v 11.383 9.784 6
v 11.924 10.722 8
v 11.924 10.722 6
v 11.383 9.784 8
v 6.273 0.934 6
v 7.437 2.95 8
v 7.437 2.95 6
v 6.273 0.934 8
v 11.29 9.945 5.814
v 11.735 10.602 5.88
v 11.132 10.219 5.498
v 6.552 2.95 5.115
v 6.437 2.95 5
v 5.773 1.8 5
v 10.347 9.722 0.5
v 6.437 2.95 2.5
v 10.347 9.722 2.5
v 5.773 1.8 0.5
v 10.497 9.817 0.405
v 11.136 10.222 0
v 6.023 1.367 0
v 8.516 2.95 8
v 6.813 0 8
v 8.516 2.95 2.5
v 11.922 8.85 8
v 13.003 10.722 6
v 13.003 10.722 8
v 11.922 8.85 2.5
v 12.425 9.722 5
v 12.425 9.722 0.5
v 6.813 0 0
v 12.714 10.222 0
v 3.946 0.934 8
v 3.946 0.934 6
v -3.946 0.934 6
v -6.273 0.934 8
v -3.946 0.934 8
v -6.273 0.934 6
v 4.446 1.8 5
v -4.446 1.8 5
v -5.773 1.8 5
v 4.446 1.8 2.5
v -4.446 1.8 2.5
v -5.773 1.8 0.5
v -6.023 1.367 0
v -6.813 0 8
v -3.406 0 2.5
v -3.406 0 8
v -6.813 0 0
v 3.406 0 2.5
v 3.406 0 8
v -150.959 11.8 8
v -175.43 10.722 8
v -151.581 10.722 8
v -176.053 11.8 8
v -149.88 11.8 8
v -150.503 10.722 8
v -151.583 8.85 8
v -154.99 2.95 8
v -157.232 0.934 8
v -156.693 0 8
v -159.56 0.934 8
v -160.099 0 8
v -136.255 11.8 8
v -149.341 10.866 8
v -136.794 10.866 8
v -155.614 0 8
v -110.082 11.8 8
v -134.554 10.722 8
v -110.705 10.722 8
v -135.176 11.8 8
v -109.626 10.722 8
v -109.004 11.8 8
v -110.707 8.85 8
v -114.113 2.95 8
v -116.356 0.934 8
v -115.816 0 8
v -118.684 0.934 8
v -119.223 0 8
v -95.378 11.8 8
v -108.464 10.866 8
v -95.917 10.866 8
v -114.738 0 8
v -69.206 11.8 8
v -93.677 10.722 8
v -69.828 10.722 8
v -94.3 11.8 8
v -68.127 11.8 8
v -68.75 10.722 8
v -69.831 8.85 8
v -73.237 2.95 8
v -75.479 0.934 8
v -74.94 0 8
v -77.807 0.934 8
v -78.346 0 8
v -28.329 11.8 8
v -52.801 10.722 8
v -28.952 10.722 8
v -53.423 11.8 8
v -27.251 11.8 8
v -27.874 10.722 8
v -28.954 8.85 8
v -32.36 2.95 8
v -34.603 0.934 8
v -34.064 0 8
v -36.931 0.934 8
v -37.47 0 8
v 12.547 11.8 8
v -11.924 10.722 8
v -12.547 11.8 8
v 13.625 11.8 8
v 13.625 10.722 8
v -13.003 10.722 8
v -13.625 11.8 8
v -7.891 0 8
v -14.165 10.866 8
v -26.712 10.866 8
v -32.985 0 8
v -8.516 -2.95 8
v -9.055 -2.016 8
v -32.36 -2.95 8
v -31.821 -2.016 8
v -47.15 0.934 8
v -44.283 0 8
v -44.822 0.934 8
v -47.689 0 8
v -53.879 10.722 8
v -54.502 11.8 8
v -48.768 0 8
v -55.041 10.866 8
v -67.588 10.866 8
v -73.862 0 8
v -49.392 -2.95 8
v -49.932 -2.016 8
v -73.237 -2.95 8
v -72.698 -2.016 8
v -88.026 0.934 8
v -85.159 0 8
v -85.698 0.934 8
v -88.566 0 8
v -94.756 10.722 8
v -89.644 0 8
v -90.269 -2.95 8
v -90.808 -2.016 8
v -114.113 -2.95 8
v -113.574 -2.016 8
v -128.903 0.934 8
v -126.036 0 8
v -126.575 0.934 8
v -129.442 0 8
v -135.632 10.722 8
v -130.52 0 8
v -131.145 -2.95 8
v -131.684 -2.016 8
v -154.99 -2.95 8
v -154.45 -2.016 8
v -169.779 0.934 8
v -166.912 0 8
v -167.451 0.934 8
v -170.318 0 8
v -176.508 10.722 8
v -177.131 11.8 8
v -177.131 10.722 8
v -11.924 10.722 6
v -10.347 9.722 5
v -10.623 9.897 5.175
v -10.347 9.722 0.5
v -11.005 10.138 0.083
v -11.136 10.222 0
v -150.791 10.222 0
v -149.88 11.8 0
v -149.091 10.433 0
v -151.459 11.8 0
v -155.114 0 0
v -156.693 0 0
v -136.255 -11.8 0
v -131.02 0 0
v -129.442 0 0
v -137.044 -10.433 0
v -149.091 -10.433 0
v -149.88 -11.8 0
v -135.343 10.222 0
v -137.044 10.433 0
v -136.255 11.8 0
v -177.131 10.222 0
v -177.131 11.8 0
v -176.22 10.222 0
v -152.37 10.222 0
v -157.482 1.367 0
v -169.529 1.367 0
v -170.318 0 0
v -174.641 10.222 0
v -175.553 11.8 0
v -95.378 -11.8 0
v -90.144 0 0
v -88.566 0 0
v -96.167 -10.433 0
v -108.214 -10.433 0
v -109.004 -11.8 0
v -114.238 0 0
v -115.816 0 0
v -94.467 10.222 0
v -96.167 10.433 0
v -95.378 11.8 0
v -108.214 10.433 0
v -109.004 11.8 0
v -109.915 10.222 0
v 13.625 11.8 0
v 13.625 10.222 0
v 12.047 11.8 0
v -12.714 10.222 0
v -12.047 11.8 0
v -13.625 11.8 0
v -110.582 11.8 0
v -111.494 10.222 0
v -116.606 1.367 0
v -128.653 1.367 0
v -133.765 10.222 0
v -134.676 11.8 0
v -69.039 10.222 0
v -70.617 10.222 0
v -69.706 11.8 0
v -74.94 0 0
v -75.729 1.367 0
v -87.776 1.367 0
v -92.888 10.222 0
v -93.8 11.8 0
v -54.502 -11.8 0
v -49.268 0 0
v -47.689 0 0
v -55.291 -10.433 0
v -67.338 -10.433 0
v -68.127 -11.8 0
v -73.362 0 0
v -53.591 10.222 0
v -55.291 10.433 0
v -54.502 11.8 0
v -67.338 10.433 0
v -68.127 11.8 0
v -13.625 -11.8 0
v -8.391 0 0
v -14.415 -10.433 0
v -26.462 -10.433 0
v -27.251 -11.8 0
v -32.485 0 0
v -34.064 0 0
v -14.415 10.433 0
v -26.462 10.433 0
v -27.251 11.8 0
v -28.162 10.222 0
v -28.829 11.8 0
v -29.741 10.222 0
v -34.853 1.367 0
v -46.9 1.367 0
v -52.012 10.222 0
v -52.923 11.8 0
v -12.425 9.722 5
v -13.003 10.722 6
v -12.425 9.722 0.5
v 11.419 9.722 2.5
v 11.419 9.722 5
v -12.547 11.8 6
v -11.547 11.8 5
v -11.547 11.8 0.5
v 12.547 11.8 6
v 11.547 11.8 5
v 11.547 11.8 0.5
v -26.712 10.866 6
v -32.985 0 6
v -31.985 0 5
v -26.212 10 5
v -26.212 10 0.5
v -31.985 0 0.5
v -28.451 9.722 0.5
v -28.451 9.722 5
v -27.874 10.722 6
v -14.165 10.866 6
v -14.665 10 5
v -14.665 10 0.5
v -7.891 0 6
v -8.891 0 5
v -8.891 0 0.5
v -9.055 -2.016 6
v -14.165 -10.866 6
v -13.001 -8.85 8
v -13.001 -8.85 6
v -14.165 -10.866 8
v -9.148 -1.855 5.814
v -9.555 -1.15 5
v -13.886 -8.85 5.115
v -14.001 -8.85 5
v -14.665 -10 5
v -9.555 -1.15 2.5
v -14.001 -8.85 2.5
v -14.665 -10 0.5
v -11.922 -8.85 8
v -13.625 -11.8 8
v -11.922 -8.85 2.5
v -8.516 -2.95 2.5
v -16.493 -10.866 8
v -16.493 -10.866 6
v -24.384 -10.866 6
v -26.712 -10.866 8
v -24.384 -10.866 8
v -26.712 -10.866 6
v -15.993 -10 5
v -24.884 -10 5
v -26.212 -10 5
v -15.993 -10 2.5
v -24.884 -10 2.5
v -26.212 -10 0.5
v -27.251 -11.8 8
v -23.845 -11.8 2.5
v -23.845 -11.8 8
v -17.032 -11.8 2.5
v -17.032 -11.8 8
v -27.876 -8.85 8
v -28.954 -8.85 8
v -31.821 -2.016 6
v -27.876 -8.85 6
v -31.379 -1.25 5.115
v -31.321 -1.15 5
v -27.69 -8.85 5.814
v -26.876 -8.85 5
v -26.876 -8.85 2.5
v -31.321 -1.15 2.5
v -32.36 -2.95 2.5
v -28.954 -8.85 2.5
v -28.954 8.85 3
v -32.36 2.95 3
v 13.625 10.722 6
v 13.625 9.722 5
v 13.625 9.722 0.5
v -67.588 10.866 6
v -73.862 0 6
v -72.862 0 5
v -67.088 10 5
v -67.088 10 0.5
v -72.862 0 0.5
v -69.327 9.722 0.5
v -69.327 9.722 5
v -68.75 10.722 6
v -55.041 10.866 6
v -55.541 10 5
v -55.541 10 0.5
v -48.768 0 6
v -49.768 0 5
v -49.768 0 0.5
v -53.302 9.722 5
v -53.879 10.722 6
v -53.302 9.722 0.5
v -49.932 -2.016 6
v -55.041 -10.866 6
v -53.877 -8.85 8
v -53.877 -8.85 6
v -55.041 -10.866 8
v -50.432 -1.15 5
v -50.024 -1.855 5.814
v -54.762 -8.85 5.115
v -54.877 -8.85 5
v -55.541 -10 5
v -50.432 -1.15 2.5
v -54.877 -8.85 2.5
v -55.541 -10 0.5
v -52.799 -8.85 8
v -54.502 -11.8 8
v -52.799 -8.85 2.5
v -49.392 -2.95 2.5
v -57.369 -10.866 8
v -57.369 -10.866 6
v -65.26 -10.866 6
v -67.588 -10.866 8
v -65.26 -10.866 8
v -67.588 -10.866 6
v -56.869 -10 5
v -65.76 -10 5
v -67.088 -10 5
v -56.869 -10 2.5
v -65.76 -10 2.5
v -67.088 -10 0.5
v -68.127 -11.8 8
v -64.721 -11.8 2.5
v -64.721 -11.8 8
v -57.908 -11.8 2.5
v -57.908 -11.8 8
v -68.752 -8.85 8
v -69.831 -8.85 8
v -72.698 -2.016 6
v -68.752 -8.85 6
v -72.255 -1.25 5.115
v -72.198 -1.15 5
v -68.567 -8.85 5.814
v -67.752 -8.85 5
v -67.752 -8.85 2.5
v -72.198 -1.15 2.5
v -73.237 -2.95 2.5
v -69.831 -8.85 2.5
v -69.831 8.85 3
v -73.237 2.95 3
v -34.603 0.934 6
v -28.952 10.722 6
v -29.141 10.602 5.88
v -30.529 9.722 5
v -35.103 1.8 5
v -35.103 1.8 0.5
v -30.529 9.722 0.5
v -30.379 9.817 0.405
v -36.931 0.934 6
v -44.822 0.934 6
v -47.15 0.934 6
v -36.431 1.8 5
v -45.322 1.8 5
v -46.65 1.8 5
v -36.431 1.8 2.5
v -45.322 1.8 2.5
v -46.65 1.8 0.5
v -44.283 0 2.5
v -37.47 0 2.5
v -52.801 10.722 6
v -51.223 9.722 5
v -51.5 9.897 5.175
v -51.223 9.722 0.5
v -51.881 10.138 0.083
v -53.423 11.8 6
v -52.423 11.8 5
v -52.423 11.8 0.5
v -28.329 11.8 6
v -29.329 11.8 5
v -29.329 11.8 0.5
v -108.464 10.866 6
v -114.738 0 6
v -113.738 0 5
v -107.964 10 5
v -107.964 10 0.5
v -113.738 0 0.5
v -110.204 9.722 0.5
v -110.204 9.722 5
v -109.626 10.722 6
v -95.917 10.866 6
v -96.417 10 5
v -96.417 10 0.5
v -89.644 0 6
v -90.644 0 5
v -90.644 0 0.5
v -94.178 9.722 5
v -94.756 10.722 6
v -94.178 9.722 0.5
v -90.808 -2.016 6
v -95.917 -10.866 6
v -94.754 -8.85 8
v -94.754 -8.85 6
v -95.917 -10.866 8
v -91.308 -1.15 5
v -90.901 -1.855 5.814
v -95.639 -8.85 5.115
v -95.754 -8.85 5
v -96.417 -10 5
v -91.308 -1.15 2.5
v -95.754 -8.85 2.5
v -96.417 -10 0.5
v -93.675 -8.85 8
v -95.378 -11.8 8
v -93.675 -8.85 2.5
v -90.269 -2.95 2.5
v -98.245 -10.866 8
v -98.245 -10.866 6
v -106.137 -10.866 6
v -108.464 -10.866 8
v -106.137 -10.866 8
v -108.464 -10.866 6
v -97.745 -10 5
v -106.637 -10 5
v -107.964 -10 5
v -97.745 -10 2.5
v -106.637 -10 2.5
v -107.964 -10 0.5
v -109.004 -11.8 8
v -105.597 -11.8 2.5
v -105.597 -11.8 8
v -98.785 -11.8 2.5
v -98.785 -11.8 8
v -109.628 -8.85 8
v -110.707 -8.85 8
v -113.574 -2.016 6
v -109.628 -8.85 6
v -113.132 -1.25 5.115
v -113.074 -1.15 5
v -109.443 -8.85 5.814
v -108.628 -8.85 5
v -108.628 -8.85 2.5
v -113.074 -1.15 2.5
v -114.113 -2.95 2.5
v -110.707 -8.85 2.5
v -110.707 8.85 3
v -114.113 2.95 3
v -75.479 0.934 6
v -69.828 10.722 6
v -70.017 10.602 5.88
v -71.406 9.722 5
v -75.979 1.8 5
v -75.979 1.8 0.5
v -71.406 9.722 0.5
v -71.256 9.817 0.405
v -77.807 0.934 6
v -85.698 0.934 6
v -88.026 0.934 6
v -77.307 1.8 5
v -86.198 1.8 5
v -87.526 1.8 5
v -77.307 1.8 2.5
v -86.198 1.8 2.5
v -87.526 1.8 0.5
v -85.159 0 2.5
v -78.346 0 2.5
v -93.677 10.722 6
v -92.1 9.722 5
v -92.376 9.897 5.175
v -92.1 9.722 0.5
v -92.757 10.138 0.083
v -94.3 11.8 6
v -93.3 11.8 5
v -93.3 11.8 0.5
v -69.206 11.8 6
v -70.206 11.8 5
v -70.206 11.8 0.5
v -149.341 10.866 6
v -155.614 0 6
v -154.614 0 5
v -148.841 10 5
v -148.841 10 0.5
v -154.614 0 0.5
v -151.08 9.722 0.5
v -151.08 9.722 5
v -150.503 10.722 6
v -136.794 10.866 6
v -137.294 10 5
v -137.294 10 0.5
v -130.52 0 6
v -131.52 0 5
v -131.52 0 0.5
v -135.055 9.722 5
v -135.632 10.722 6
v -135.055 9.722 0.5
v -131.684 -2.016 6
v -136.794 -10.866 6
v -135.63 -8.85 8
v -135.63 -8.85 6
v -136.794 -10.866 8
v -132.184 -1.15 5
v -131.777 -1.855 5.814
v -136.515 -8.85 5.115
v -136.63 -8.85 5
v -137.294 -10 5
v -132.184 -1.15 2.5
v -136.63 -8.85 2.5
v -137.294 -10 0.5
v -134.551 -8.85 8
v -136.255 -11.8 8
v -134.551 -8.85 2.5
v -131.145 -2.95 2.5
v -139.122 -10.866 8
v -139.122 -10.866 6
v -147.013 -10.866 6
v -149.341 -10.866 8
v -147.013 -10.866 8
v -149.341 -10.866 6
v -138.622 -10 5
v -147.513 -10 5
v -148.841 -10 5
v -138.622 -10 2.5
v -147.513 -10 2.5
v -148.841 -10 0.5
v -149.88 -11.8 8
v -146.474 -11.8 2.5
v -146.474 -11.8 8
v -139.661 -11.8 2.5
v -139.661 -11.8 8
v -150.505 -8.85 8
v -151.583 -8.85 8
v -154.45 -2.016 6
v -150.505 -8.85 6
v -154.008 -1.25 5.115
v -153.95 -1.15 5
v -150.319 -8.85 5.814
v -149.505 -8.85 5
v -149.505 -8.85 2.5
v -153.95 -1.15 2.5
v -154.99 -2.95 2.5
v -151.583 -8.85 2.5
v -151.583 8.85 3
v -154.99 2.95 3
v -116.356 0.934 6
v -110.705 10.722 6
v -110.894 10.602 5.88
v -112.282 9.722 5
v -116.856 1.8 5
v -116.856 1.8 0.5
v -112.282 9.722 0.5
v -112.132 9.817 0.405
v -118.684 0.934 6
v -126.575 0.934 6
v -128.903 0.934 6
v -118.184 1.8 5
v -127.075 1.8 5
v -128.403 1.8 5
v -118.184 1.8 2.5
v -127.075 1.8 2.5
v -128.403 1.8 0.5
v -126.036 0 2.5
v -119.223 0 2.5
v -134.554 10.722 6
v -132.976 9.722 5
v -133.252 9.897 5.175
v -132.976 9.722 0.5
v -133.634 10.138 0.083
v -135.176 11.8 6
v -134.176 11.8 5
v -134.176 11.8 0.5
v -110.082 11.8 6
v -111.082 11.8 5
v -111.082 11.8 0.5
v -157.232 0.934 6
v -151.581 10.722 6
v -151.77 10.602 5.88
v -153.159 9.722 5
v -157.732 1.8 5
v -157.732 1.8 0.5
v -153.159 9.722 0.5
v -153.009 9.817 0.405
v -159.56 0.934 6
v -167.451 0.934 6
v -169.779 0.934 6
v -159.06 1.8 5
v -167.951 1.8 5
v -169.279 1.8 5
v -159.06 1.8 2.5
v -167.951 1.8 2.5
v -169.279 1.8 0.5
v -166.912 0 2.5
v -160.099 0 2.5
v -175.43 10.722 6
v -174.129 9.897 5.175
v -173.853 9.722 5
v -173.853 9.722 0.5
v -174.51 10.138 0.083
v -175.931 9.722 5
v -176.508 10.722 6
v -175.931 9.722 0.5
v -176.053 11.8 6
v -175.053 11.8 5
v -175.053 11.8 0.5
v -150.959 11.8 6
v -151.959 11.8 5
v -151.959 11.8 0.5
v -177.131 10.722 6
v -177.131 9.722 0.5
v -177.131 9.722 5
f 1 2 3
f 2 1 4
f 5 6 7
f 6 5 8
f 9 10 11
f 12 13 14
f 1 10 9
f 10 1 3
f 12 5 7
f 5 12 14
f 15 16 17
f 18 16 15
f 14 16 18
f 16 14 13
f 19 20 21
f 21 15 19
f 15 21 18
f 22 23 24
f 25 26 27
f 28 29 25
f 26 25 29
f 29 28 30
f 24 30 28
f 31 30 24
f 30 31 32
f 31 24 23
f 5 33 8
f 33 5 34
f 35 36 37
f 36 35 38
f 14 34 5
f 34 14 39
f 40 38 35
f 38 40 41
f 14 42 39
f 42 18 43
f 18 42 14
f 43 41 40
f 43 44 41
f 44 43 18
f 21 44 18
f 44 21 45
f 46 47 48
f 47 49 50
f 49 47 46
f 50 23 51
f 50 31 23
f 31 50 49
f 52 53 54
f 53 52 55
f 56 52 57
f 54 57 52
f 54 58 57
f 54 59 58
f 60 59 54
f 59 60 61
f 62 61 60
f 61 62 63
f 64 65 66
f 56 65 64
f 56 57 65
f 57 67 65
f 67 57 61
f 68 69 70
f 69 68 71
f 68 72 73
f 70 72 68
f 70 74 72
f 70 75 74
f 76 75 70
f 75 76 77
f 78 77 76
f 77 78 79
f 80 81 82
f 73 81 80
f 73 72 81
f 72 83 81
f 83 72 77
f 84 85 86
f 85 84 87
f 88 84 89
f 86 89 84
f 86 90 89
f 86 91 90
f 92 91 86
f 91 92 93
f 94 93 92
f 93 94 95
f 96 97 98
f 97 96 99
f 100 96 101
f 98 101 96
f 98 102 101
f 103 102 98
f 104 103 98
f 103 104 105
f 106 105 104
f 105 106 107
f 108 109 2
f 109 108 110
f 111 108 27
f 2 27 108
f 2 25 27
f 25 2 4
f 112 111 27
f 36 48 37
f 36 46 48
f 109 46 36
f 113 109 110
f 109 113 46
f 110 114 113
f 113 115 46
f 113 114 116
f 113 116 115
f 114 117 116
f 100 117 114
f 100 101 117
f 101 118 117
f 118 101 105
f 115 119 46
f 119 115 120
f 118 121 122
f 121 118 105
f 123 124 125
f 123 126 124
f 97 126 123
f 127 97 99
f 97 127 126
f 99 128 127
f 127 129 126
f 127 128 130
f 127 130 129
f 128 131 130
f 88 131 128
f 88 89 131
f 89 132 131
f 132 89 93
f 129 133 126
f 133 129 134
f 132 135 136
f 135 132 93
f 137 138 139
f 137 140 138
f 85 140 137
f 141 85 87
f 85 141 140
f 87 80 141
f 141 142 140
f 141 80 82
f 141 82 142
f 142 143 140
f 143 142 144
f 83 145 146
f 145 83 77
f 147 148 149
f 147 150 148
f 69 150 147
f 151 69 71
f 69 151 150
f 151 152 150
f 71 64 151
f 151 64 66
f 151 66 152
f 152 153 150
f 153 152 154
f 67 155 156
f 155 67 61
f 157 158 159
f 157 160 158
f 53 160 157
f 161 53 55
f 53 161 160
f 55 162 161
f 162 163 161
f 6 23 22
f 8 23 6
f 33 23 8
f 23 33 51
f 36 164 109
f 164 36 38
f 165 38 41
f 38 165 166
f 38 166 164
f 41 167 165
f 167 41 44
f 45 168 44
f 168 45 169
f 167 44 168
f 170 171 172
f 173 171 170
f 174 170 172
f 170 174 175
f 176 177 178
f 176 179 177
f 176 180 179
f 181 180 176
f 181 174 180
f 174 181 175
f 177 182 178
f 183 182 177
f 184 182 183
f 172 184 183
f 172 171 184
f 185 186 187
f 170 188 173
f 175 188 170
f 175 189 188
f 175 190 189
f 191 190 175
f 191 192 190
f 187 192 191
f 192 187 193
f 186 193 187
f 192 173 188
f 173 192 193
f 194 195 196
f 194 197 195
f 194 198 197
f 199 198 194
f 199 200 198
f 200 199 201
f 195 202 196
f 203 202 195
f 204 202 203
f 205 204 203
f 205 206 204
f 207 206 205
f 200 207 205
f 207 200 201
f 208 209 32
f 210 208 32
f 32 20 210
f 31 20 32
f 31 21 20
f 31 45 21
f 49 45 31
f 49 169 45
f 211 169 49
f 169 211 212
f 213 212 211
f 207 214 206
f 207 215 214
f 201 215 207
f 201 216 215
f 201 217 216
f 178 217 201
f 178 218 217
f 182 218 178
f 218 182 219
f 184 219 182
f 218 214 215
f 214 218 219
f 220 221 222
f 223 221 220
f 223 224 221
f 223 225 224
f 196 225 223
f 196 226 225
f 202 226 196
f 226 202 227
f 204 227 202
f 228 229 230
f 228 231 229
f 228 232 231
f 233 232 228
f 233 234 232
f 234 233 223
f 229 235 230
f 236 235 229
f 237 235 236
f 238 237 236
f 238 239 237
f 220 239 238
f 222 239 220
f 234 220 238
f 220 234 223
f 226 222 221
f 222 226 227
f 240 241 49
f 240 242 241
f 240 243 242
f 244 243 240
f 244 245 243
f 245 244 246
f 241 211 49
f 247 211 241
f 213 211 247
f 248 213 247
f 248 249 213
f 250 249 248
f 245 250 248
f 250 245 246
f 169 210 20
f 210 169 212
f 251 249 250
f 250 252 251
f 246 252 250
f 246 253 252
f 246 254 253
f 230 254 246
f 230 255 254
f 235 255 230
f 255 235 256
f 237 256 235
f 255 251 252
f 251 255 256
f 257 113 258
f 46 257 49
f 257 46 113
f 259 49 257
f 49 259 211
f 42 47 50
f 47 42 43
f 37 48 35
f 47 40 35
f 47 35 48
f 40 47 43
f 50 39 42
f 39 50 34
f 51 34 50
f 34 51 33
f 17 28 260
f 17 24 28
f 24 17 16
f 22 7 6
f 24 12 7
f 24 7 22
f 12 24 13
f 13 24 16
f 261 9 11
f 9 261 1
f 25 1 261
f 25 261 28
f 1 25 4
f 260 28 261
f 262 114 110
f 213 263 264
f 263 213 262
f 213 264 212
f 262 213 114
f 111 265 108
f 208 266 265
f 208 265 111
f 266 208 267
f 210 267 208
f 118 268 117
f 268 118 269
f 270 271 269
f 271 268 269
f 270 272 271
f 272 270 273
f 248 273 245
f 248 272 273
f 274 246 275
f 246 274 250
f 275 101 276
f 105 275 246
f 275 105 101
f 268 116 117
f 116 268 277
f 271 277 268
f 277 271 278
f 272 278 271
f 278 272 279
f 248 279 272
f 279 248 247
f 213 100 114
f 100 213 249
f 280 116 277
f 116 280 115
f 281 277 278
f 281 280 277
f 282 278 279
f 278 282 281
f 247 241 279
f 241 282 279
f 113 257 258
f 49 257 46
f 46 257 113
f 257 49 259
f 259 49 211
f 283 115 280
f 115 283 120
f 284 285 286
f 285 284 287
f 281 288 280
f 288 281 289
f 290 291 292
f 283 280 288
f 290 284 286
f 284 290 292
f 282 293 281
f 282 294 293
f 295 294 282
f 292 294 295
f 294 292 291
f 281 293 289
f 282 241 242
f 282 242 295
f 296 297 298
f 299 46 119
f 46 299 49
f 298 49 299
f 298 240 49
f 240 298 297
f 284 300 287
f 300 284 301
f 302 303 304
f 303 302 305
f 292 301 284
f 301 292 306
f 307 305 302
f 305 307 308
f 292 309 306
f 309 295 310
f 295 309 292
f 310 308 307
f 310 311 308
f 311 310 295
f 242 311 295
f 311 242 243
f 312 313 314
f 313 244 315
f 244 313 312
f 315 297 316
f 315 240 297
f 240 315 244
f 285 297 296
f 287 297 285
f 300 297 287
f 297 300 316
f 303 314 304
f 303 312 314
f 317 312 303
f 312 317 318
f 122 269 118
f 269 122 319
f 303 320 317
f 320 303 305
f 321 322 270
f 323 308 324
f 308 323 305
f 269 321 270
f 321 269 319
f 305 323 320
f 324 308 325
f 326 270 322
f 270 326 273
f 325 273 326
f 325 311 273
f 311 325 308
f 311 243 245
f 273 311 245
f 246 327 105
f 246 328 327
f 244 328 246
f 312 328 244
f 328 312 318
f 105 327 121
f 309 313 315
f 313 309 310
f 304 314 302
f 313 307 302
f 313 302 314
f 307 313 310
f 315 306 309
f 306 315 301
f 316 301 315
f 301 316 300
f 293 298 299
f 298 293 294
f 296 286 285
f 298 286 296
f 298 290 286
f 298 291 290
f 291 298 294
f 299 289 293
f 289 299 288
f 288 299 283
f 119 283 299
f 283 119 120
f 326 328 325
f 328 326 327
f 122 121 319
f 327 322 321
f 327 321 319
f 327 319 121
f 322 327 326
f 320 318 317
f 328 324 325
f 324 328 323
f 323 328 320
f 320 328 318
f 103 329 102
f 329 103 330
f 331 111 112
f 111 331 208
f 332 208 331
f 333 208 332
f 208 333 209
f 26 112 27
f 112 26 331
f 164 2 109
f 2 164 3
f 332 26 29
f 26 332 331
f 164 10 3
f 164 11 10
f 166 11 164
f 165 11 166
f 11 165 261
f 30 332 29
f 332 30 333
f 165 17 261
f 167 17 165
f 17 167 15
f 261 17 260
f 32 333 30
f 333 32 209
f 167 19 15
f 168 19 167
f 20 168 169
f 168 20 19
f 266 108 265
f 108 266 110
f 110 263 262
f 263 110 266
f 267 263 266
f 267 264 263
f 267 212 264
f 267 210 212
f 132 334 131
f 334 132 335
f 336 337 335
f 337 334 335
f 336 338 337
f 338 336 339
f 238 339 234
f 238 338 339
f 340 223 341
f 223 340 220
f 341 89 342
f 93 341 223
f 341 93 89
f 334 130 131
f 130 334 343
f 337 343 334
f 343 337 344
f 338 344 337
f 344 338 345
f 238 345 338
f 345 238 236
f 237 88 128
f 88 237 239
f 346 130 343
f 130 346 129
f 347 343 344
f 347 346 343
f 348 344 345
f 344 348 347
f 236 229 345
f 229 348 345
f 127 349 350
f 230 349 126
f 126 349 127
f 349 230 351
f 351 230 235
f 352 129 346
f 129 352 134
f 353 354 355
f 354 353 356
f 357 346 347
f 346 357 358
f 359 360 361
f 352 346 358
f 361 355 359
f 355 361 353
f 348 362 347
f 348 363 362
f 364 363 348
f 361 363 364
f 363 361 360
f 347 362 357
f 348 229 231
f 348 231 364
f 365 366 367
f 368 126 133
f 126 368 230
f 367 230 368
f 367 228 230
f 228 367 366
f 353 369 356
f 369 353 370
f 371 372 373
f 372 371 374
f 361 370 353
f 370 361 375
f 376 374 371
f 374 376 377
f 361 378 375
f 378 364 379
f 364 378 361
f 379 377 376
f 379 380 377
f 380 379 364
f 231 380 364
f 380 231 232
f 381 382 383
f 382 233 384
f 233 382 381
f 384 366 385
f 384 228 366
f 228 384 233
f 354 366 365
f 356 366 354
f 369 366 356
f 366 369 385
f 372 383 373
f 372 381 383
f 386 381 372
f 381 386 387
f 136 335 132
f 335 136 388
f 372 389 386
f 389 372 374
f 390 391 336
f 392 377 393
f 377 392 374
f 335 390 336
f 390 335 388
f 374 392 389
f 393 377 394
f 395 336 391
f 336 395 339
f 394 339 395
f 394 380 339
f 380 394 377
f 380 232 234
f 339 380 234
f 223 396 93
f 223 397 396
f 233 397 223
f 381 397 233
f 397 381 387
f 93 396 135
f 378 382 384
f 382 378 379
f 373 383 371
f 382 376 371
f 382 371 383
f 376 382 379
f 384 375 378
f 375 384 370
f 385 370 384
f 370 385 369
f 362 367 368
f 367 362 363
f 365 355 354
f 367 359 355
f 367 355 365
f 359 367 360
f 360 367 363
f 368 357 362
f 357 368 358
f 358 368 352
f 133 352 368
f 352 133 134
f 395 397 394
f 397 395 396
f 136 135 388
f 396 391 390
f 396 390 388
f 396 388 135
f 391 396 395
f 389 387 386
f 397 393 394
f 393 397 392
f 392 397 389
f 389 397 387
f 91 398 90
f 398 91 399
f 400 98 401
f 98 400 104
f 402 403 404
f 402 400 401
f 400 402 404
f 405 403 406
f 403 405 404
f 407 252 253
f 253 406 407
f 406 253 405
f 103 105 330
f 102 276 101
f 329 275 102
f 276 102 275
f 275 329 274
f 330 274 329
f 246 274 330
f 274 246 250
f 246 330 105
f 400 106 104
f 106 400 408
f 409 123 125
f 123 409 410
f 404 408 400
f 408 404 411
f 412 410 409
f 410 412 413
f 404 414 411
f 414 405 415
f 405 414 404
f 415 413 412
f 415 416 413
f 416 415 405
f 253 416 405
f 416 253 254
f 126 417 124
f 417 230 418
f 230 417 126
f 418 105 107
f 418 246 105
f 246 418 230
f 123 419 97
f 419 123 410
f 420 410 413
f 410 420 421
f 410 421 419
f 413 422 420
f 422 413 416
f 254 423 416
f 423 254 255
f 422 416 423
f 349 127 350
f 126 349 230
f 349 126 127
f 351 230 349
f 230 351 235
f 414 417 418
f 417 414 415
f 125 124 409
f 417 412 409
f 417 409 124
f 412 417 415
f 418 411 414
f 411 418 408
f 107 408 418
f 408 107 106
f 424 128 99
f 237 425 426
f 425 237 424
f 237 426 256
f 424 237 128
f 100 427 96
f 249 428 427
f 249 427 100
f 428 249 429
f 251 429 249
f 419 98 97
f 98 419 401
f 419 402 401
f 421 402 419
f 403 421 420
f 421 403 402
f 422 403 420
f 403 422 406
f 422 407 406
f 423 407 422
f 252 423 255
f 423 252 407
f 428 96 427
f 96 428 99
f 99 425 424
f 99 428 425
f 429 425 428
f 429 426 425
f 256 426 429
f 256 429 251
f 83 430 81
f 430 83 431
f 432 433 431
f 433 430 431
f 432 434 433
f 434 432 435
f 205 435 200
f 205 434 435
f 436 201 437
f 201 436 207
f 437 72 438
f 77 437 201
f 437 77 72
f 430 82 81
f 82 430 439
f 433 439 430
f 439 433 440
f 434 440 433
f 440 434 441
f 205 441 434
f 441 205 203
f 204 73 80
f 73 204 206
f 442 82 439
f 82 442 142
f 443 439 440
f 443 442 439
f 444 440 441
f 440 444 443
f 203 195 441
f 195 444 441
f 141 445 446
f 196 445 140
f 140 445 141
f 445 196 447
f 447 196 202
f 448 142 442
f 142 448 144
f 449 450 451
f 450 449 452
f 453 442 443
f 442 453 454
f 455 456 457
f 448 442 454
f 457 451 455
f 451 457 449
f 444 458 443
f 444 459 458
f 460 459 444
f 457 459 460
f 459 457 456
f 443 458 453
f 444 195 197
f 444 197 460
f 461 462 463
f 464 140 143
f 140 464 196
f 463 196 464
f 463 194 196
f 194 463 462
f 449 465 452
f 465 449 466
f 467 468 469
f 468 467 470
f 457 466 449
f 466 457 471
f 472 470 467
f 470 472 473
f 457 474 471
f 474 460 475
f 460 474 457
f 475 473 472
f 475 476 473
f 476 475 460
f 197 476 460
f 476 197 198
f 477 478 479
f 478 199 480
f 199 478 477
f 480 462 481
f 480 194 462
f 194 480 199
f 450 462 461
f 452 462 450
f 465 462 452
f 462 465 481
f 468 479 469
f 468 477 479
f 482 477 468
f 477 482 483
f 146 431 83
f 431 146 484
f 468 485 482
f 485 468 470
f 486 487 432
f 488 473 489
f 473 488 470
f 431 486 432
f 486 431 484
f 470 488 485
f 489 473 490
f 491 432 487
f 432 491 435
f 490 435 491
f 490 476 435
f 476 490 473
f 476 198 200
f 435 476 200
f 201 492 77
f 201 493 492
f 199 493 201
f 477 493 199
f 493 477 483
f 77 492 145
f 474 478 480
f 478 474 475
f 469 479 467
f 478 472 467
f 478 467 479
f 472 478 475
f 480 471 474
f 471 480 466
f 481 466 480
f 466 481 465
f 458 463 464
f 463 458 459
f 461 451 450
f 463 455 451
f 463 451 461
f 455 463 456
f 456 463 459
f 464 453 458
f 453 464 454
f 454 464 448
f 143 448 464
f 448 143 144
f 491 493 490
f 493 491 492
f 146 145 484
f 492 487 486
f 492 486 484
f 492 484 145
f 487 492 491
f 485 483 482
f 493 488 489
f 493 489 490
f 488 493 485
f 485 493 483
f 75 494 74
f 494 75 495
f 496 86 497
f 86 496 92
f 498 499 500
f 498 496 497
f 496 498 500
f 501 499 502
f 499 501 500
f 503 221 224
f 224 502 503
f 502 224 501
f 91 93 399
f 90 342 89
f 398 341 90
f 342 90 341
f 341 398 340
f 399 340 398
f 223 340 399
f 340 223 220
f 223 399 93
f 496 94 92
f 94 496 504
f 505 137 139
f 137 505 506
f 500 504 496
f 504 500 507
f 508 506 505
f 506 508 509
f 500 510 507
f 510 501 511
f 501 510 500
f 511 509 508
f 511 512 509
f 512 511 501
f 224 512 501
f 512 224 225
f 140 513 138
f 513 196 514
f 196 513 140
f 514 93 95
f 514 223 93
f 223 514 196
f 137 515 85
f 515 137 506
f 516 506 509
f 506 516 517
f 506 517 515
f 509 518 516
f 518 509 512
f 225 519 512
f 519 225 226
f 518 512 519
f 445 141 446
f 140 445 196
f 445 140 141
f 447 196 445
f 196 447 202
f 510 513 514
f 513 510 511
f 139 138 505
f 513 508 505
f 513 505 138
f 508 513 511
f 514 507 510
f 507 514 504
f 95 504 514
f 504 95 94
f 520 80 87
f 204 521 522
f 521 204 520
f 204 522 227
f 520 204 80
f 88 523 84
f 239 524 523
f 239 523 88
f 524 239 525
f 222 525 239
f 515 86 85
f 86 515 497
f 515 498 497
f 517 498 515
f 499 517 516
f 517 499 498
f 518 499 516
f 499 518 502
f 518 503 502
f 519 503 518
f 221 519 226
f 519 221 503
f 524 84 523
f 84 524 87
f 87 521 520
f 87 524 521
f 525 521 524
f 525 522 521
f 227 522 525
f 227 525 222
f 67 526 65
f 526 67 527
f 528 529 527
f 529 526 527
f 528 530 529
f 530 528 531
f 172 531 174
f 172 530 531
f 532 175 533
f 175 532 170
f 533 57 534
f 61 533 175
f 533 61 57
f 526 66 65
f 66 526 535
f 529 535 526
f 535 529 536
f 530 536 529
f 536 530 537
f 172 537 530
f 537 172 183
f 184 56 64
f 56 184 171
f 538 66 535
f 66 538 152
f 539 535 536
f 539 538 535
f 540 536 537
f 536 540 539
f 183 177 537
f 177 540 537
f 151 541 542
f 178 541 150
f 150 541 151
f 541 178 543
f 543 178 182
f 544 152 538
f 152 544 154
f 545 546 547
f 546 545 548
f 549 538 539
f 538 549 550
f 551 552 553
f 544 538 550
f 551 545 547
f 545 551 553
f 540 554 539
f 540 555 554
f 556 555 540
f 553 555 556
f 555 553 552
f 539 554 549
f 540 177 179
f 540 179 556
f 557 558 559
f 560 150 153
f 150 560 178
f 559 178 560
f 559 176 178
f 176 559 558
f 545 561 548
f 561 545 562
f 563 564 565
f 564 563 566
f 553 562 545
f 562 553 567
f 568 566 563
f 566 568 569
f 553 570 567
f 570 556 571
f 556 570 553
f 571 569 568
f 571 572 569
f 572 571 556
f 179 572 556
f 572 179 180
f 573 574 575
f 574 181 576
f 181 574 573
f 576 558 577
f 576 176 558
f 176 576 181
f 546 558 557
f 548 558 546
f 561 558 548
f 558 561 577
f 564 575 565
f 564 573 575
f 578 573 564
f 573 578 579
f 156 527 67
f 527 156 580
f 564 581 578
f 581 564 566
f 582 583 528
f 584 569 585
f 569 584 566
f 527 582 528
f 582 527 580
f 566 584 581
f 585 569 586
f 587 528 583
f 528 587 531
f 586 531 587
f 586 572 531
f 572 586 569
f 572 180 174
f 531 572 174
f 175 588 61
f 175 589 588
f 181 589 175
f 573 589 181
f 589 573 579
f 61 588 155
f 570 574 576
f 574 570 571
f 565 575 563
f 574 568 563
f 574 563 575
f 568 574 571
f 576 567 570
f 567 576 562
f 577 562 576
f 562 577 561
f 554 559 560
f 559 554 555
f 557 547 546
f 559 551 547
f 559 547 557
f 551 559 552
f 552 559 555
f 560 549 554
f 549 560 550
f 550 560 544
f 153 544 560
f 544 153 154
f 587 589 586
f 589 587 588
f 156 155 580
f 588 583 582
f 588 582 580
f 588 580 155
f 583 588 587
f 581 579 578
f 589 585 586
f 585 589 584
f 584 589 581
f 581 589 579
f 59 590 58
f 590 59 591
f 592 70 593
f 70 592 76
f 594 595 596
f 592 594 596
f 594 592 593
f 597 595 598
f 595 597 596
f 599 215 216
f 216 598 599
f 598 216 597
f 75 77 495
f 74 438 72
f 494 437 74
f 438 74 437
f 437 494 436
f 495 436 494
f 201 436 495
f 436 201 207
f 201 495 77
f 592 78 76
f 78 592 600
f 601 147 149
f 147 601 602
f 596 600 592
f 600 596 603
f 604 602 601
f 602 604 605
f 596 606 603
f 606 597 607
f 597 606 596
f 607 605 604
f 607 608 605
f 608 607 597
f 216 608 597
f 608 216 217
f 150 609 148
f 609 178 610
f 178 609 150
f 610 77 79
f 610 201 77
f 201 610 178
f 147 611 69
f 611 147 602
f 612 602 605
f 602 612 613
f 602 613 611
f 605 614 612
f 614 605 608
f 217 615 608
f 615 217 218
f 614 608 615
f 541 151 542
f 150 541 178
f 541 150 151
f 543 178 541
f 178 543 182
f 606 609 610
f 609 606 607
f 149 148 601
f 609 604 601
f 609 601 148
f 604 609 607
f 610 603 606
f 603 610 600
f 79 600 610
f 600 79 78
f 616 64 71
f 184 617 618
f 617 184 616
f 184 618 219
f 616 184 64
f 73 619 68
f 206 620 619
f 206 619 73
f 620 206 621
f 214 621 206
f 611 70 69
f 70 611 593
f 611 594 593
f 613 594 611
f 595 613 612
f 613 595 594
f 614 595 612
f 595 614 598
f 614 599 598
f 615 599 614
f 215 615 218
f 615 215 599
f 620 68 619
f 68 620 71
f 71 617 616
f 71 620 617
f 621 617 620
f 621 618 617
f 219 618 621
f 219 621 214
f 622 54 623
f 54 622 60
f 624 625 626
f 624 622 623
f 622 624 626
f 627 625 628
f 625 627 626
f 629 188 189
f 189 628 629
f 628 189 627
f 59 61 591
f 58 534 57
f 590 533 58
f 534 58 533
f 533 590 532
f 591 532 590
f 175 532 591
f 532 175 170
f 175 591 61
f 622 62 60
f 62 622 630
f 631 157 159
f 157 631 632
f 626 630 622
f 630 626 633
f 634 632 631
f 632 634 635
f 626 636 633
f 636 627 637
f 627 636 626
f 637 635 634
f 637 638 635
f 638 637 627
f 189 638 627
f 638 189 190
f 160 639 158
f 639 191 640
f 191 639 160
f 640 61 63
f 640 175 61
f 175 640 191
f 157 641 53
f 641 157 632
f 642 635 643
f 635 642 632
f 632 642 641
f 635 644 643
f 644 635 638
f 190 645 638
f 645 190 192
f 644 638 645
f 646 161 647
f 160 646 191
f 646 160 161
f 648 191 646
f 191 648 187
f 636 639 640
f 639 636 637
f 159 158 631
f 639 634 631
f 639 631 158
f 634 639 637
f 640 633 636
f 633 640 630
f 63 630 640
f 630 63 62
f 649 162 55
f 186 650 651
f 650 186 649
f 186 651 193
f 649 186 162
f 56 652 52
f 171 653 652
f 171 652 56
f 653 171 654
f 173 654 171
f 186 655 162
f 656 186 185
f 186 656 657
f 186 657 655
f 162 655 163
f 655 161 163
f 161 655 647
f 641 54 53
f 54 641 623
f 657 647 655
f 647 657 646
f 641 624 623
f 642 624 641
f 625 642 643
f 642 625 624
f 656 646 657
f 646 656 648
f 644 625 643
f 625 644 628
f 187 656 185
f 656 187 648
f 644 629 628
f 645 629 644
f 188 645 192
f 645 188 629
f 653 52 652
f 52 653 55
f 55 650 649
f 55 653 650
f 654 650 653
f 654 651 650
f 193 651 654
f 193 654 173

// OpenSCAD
// file: _honeycomb_element.scad
$fn = 50;

radius = 13.6;
diameter = radius * 2;

h_inner = 10;
r_inner = h_inner * 2 / sqrt(3);

h_outer = 10 + 1.8;
r_outer = h_outer * 2 / sqrt(3);

h_thin = 10 + 1;
r_thin = h_thin * 2 / sqrt(3);

total_height = 8;

small_value = 0.1;

clips_height = 5;
clips_offset = 0.5;
clips_side_offset = 0.00;

module basic_polygon() {
  polygon(
    [
      [r_outer, total_height],
      [r_outer, 0],
      [r_inner + 0.5, 0],
      [r_inner, 0.5],
      [r_inner, total_height - 3],
      [r_inner + 1, total_height - 2],
      [r_inner + 1, total_height],
    ]
  );
}

module basic_model() {
  rotate_extrude($fn=6) {
    basic_polygon();
  }
}

module panel_with_clips(pin_1 = false, pin_2 = false, pin_3 = false, pin_4 = false, pin_5 = false, pin_6 = false, slot_1 = false, slot_2 = false, slot_3 = false, slot_4 = false, slot_5 = false, slot_6 = false) {

  difference() {
    basic_model();

    if (slot_1) {
      rotate([0, 0, 0])
        translate([0, -h_outer * 2, total_height - (clips_height + clips_offset) / 2])
          linear_extrude(height=clips_height + clips_offset, center=true)
            polygon([[clips_side_offset, h_outer / 2], [-clips_side_offset, h_outer / 2], [-r_outer / 2 - clips_side_offset, h_outer * 1.5], [r_outer / 2 + clips_side_offset, h_outer * 1.5]]);
    }

    if (slot_2) {
      rotate([0, 0, 60])
        translate([0, -h_outer * 2, total_height - (clips_height + clips_offset) / 2])
          linear_extrude(height=clips_height + clips_offset, center=true)
            polygon([[clips_side_offset, h_outer / 2], [-clips_side_offset, h_outer / 2], [-r_outer / 2 - clips_side_offset, h_outer * 1.5], [r_outer / 2 + clips_side_offset, h_outer * 1.5]]);
    }

    if (slot_3) {
      rotate([0, 0, 120])
        translate([0, -h_outer * 2, total_height - (clips_height + clips_offset) / 2])
          linear_extrude(height=clips_height + clips_offset, center=true)
            polygon([[clips_side_offset, h_outer / 2], [-clips_side_offset, h_outer / 2], [-r_outer / 2 - clips_side_offset, h_outer * 1.5], [r_outer / 2 + clips_side_offset, h_outer * 1.5]]);
    }

    if (slot_4) {
      rotate([0, 0, 180])
        translate([0, -h_outer * 2, total_height - (clips_height + clips_offset) / 2])
          linear_extrude(height=clips_height + clips_offset, center=true)
            polygon([[clips_side_offset, h_outer / 2], [-clips_side_offset, h_outer / 2], [-r_outer / 2 - clips_side_offset, h_outer * 1.5], [r_outer / 2 + clips_side_offset, h_outer * 1.5]]);
    }

    if (slot_5) {
      rotate([0, 0, 240])
        translate([0, -h_outer * 2, total_height - (clips_height + clips_offset) / 2])
          linear_extrude(height=clips_height + clips_offset, center=true)
            polygon([[clips_side_offset, h_outer / 2], [-clips_side_offset, h_outer / 2], [-r_outer / 2 - clips_side_offset, h_outer * 1.5], [r_outer / 2 + clips_side_offset, h_outer * 1.5]]);
    }

    if (slot_6) {
      rotate([0, 0, 300])
        translate([0, -h_outer * 2, total_height - (clips_height + clips_offset) / 2])
          linear_extrude(height=clips_height + clips_offset, center=true)
            polygon([[clips_side_offset, h_outer / 2], [-clips_side_offset, h_outer / 2], [-r_outer / 2 - clips_side_offset, h_outer * 1.5], [r_outer / 2 + clips_side_offset, h_outer * 1.5]]);
    }
  }

  if (pin_1) {
    intersection() {
      translate([0, -h_outer * 2, 0])
        basic_model();
      translate([0, 0, total_height - clips_height / 2]) {
        rotate([0, 0, -180])
          linear_extrude(height=clips_height, center=true)
            polygon([[0, h_outer / 2], [-r_outer / 2, h_outer * 1.5], [r_outer / 2, h_outer * 1.5]]);
      }
    }
  }

  if (pin_2) {
    intersection() {
      translate([r_outer * 1.5, -h_outer, 0])
        basic_model();
      translate([0, 0, total_height - clips_height / 2]) {
        rotate([0, 0, -120])
          linear_extrude(height=clips_height, center=true)
            polygon([[0, h_outer / 2], [-r_outer / 2, h_outer * 1.5], [r_outer / 2, h_outer * 1.5]]);
      }
    }
  }

  if (pin_3) {
    intersection() {
      translate([r_outer * 1.5, h_outer, 0])
        basic_model();
      translate([0, 0, total_height - clips_height / 2]) {
        rotate([0, 0, -60])
          linear_extrude(height=clips_height, center=true)
            polygon([[0, h_outer / 2], [-r_outer / 2, h_outer * 1.5], [r_outer / 2, h_outer * 1.5]]);
      }
    }
  }

  if (pin_4) {
    intersection() {
      translate([0, h_outer * 2, 0])
        basic_model();

      translate([0, 0, total_height - clips_height / 2]) {
        linear_extrude(height=clips_height, center=true)
          polygon([[0, h_outer / 2], [-r_outer / 2, h_outer * 1.5], [r_outer / 2, h_outer * 1.5]]);
      }
    }
  }

  if (pin_5) {
    intersection() {
      translate([-r_outer * 1.5, h_outer, 0])
        basic_model();
      translate([0, 0, total_height - clips_height / 2]) {
        rotate([0, 0, 60])
          linear_extrude(height=clips_height, center=true)
            polygon([[0, h_outer / 2], [-r_outer / 2, h_outer * 1.5], [r_outer / 2, h_outer * 1.5]]);
      }
    }
  }

  if (pin_6) {
    intersection() {
      translate([-r_outer * 1.5, -h_outer, 0])
        basic_model();

      translate([0, 0, total_height - clips_height / 2]) {
        rotate([0, 0, 120])
          linear_extrude(height=clips_height, center=true)
            polygon([[0, h_outer / 2], [-r_outer / 2, h_outer * 1.5], [r_outer / 2, h_outer * 1.5]]);
      }
    }
  }
}

// end _honeycomb_element.scad
// main file
$fn = 50;

h_outer = 10 + 1.8;
r_outer = h_outer * 2 / sqrt(3);

use <_honeycomb_element.scad>;

module perimeter_top_item(left_slot = false) {
  difference() {
    translate([0, h_outer, 0])
      panel_with_clips(slot_1=true, slot_2=left_slot);

    translate([0, 50 + h_outer, 0])
      cube([100, 100, 100], center=true);
  }

  translate([-r_outer * 1.5, 0, 0])
    panel_with_clips(slot_1=true, slot_2=true, slot_6=true, pin_5=true);

  translate([0, h_outer - r_outer, 0])
    rotate([90, 0, 90])
      linear_extrude(height=r_outer * 2, center=true)
        basic_polygon();
}

module perimeter_bottom() {
  perimeter_top_item(left_slot=true);

  translate([-3 * r_outer, 0, 0])
    perimeter_top_item();

  translate([-6 * r_outer, 0, 0])
    perimeter_top_item();

  translate([-9 * r_outer, 0, 0])
    perimeter_top_item();

  translate([-12 * r_outer, h_outer - r_outer, 0]) {
    rotate([90, 0, 90])
      linear_extrude(height=r_outer * 2, center=true)
        basic_polygon();
  }

  translate([-12 * r_outer, 0, 0]) {
    difference() {
      translate([0, h_outer, 0])
        panel_with_clips(slot_1=true);

      translate([0, 50 + h_outer, 0])
        cube([100, 100, 100], center=true);
    }
  }
}

perimeter_bottom();
